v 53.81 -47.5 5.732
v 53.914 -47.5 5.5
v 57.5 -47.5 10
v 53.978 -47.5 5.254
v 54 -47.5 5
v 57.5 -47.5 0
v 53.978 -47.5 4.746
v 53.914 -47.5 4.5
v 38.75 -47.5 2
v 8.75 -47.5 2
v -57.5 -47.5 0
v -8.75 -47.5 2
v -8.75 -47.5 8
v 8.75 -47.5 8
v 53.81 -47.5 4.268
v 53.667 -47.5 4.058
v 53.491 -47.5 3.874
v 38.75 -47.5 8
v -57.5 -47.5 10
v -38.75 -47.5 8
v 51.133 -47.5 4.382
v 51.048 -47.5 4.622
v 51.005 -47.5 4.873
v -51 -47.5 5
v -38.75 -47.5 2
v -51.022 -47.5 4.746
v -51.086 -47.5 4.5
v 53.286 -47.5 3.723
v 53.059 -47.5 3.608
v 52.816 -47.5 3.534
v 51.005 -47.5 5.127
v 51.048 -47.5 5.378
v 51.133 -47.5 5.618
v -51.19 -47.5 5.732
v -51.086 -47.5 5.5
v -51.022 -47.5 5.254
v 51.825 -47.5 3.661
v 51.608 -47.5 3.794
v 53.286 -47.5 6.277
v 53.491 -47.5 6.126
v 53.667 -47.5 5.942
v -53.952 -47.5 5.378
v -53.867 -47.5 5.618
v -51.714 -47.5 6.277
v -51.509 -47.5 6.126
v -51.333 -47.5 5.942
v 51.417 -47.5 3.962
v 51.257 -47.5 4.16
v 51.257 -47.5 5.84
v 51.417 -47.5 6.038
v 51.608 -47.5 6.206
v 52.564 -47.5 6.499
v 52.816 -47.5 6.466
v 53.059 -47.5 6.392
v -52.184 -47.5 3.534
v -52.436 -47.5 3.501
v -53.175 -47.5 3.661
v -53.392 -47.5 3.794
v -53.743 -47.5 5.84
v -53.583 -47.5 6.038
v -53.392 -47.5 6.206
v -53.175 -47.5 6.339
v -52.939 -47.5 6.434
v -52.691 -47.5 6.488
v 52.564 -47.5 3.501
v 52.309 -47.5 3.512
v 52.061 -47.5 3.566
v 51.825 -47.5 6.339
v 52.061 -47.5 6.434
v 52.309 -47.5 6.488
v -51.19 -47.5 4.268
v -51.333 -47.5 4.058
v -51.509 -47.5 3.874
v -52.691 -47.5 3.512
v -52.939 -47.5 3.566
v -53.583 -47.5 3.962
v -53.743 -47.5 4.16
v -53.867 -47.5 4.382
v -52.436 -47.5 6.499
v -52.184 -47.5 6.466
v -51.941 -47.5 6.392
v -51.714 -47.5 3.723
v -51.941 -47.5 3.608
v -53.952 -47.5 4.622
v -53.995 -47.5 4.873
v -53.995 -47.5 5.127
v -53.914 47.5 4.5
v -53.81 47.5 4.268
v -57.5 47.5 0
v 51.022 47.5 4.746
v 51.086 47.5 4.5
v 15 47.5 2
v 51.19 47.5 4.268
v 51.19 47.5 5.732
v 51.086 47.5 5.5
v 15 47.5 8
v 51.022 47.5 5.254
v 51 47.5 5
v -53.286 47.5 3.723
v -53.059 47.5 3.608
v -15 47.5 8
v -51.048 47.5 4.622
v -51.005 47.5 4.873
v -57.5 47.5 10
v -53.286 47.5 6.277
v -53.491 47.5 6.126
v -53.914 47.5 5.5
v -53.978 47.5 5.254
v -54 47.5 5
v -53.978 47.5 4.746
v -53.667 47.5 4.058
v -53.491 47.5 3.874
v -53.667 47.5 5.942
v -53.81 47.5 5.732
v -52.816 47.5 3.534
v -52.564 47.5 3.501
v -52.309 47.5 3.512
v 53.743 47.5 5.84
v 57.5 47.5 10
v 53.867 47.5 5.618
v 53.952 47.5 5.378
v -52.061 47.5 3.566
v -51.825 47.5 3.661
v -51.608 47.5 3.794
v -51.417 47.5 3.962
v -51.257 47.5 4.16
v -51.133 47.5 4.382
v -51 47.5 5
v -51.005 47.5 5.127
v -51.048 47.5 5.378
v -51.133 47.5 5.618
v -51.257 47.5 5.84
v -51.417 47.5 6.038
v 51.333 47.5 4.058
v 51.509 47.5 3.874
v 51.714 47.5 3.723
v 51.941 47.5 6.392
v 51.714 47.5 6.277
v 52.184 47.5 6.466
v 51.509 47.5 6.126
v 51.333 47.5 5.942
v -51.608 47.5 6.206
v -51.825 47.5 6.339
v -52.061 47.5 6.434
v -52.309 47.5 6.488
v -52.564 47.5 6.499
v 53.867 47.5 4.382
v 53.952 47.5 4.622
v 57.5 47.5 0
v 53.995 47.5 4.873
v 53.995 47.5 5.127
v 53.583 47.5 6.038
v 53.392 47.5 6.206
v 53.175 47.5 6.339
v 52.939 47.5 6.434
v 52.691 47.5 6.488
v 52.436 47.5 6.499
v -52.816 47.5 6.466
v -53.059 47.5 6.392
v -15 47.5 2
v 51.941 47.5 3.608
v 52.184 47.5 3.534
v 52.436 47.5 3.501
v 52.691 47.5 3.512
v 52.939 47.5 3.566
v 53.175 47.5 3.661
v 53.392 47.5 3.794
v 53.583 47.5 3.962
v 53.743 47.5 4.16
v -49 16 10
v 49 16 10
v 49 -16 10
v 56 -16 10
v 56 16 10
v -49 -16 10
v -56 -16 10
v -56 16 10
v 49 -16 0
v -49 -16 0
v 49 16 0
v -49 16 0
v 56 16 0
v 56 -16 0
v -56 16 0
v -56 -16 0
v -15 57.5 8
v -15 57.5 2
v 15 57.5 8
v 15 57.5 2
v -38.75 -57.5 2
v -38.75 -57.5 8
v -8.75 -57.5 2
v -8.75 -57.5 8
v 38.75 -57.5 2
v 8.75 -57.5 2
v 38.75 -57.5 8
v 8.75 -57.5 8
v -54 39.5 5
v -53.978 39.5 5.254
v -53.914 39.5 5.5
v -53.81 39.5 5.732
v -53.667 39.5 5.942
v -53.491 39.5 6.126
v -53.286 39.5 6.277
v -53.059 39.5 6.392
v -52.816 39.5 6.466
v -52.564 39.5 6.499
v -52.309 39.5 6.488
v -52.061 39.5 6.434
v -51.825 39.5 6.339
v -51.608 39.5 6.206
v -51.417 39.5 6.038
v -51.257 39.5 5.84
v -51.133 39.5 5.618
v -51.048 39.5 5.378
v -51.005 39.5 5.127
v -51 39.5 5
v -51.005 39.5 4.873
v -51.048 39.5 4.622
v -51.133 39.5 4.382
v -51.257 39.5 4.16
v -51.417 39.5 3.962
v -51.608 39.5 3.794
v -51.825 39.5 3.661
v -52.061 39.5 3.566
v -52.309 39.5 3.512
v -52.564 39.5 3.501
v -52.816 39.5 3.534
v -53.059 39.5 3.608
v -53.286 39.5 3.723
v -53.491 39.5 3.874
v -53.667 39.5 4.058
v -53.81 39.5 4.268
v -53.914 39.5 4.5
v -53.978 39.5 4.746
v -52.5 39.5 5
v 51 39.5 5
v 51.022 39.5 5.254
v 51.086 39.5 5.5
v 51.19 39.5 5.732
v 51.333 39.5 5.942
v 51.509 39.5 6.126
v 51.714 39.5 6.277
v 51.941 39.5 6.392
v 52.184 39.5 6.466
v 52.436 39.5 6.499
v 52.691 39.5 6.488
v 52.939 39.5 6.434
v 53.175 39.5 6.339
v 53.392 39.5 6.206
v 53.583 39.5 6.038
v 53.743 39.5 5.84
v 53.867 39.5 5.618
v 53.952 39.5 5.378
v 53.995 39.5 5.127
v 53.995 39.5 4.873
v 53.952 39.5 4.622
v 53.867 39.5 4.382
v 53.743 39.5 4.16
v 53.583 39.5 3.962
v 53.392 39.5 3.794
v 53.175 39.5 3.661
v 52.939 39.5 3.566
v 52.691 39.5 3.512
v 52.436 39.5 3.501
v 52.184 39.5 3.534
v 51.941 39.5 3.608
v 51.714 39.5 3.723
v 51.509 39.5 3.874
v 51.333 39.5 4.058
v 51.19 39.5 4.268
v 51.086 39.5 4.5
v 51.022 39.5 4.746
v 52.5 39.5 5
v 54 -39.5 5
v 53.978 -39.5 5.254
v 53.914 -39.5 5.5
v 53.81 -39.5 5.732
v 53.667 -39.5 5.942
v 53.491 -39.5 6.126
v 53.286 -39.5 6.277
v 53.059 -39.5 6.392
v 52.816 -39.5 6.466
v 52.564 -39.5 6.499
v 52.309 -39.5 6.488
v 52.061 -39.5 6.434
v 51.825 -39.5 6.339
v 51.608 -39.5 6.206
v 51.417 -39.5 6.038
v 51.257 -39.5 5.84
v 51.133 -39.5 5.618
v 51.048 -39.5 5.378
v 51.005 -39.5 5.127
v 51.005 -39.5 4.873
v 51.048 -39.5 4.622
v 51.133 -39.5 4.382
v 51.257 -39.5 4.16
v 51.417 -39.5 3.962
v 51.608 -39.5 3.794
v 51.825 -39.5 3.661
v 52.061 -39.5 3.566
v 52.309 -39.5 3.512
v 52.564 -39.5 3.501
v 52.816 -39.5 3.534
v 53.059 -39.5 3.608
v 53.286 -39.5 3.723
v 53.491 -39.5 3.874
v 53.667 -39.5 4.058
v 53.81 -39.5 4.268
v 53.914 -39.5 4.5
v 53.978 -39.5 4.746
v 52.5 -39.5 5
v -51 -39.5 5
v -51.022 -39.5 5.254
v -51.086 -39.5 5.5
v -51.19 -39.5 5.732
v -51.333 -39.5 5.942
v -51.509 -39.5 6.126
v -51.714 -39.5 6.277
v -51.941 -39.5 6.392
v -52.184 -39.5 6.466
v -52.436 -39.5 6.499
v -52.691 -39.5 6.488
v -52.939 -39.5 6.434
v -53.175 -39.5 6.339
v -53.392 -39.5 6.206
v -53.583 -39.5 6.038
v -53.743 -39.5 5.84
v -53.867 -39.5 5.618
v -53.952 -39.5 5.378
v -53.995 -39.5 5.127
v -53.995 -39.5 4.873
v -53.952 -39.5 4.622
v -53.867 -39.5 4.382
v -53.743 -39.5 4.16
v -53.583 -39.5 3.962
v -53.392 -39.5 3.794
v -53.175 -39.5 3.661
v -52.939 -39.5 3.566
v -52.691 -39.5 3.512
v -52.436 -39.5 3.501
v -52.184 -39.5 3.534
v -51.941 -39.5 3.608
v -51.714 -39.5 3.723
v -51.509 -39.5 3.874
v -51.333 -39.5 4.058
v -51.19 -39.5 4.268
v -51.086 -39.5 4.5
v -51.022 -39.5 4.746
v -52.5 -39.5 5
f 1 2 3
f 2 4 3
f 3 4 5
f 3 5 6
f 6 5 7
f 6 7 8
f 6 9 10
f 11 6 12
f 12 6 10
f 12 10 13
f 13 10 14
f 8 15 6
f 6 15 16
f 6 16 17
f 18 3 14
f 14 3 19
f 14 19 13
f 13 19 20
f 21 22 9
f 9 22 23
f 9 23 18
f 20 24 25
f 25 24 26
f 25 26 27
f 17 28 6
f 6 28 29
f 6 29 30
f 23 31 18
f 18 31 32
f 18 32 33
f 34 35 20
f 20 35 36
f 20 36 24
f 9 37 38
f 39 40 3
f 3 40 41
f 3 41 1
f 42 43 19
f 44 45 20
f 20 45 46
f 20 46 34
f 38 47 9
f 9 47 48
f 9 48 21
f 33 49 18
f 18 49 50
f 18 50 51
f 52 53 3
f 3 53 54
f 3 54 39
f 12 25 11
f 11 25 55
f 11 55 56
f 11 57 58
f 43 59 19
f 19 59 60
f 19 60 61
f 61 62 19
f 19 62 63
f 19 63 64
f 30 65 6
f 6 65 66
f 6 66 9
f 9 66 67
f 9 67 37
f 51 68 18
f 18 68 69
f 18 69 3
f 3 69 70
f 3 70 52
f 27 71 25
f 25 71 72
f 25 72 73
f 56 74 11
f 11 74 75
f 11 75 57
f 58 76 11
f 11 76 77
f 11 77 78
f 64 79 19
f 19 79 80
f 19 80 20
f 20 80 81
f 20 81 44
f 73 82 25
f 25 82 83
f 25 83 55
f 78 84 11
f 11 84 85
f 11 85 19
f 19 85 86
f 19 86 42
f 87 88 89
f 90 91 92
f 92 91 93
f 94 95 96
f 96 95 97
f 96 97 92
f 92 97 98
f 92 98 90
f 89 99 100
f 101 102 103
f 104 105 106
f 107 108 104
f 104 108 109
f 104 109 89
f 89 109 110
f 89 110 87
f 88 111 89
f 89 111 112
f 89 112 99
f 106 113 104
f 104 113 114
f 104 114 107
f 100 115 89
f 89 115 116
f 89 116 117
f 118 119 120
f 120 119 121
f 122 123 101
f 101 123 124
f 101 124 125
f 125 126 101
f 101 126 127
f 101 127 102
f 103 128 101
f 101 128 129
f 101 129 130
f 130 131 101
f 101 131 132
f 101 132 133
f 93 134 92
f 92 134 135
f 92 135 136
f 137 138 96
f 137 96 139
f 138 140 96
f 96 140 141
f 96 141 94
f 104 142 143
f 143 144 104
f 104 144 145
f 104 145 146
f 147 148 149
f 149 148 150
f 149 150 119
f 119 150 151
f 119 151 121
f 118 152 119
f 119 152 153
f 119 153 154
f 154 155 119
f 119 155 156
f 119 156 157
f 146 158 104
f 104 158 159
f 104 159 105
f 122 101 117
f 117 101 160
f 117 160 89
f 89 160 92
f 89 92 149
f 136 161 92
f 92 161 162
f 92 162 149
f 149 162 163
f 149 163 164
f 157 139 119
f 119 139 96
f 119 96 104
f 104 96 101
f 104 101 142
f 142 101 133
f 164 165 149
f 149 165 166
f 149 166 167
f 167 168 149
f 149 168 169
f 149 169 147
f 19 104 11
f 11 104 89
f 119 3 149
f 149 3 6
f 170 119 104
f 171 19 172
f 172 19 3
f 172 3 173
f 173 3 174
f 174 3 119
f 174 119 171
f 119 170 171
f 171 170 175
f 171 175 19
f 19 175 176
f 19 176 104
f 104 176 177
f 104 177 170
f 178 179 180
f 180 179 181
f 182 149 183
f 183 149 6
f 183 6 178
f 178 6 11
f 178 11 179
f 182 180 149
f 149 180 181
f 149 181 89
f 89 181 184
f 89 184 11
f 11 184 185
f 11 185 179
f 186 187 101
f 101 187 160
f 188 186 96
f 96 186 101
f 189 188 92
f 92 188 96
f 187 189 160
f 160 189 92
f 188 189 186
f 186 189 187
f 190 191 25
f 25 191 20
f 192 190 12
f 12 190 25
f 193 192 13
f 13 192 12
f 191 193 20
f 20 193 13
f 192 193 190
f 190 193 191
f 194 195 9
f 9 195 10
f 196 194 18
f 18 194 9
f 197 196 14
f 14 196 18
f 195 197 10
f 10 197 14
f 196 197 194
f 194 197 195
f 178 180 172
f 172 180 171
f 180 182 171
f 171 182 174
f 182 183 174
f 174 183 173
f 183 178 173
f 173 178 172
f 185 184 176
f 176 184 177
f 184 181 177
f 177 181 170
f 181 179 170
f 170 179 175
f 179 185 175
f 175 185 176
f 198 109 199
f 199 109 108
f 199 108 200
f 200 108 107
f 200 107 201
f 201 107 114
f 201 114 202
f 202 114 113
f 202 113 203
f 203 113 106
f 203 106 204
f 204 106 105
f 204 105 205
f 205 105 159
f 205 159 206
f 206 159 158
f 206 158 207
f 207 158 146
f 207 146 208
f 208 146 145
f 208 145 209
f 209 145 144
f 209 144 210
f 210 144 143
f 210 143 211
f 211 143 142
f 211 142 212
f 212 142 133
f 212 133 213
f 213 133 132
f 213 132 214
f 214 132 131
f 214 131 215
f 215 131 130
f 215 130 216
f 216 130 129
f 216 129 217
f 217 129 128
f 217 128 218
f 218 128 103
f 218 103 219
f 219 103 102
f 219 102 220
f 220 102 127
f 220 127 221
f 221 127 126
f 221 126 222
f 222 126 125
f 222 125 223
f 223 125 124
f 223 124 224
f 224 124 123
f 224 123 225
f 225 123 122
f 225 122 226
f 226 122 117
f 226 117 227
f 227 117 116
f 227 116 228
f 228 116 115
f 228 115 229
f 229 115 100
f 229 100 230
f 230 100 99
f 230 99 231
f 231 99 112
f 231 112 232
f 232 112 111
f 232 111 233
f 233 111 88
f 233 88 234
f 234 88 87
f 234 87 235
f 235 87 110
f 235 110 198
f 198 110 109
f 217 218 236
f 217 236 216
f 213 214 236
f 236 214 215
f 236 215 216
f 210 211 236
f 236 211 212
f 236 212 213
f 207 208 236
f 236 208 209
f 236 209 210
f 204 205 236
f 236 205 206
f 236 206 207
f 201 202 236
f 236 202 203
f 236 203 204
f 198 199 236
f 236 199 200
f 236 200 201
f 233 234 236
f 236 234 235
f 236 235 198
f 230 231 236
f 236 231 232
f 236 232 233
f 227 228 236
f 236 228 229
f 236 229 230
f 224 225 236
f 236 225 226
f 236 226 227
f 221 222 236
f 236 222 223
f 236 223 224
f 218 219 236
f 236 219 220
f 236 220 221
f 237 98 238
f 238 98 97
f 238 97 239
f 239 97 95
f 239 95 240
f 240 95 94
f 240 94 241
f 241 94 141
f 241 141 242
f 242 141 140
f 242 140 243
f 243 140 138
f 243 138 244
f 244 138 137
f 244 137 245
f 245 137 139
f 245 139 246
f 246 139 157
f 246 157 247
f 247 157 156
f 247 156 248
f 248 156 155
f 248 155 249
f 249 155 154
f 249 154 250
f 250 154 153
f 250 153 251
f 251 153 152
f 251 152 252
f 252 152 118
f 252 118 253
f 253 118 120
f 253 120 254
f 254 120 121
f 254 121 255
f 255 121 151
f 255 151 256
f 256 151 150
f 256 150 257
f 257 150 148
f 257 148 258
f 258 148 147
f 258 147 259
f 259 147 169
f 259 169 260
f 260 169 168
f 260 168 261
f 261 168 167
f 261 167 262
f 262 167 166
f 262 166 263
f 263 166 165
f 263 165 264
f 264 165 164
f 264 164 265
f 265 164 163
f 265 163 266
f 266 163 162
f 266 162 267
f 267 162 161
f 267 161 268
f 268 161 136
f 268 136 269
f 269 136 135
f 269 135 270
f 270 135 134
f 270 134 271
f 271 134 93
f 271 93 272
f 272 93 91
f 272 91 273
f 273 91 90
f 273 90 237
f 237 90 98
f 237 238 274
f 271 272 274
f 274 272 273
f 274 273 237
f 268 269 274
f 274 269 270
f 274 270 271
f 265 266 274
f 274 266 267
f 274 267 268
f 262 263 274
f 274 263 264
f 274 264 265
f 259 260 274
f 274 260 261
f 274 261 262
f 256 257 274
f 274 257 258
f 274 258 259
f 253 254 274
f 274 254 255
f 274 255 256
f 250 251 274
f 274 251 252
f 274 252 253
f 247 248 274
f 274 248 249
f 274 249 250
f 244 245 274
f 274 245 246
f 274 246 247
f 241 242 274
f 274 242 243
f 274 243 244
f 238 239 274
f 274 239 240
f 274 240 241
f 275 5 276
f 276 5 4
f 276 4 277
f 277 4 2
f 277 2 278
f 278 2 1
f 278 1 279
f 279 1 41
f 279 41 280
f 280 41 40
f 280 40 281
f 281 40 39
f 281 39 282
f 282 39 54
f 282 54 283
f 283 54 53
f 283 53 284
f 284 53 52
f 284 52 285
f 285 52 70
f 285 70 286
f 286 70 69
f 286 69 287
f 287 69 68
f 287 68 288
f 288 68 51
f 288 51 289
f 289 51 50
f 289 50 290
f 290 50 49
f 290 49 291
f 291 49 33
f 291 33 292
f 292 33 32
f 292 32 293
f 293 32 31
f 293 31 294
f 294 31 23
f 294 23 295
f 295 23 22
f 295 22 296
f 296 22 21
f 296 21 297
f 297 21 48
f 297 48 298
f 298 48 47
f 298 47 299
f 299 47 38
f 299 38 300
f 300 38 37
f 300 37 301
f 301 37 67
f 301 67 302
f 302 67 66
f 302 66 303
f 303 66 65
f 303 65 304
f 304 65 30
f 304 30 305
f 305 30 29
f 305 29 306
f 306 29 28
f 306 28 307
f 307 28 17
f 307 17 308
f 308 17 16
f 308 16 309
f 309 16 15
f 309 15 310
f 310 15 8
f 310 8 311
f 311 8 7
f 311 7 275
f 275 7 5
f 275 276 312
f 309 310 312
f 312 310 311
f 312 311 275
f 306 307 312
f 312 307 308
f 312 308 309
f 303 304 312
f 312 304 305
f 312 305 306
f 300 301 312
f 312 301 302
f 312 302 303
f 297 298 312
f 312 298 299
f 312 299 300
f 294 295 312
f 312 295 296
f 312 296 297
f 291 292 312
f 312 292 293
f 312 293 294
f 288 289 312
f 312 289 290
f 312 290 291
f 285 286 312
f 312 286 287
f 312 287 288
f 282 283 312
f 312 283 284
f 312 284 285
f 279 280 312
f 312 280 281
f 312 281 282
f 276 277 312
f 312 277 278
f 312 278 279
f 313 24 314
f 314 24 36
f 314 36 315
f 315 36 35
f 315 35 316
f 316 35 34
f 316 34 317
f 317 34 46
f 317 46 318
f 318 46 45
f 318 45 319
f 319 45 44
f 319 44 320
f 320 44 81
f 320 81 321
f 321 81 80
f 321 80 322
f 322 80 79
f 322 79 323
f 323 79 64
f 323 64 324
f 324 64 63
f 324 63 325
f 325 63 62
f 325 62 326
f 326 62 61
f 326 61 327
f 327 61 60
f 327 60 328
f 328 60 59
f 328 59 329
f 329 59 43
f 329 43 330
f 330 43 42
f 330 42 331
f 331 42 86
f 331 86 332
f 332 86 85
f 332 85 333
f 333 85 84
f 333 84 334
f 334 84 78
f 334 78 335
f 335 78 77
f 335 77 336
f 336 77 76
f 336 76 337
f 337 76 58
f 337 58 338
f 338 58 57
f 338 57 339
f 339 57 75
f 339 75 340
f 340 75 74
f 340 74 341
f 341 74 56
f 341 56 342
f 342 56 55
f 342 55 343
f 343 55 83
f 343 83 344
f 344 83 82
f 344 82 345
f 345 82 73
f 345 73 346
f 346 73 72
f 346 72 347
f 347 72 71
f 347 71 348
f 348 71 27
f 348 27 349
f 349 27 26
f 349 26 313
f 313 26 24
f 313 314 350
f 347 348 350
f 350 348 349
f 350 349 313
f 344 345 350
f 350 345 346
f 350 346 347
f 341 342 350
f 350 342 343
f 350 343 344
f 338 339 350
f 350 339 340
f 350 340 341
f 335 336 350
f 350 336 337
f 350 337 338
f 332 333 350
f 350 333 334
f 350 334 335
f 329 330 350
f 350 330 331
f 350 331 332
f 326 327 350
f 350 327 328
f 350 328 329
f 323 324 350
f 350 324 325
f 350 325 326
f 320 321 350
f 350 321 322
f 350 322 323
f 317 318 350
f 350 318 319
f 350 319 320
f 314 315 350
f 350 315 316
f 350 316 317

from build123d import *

# Parameters (mm, degrees)
ESBO_O1_W                = 115
ESBO_O1_H                = 95
RESSALTO_EXTRUS_O1_DEPTH = 10
ESBO_O2_W                = 30
ESBO_O2_H                = 6
RESSALTO_EXTRUS_O2_DEPTH = 10
ESBO_O3_W                = 30
ESBO_O3_H                = 6
RESSALTO_EXTRUS_O3_DEPTH = 10
ESBO_O4_W                = 7
ESBO_O4_H                = 32
CORTE_EXTRUS_O1_DEPTH    = 11
ESBO_O5_R                = 1.5
CORTE_EXTRUS_O2_DEPTH    = 8
ESBO_O6_R                = 1.5
CORTE_EXTRUS_O3_DEPTH    = 8


with BuildPart() as part:
    # Esboço1 → Ressalto-extrusão1 (new body)
    with BuildSketch(Plane.XY):
        Rectangle(ESBO_O1_W, ESBO_O1_H)
    extrude(amount=RESSALTO_EXTRUS_O1_DEPTH)

    # Esboço2 → Ressalto-extrusão2 (add)
    with BuildSketch(Plane(origin=(0, 47.5, 0), x_dir=(1, 0, 0), z_dir=(0, 1, 0))):
        with Locations((0, -5)):
            Rectangle(ESBO_O2_W, ESBO_O2_H)
    extrude(amount=RESSALTO_EXTRUS_O2_DEPTH)

    # Esboço3 → Ressalto-extrusão3 (add)
    with BuildSketch(Plane.XZ.offset(47.5)):
        with Locations((23.75, 5)):
            Rectangle(ESBO_O3_W, ESBO_O3_H)
        with Locations((-23.75, 5)):
            Rectangle(ESBO_O3_W, ESBO_O3_H)
    extrude(amount=RESSALTO_EXTRUS_O3_DEPTH)

    # Esboço4 → Corte-extrusão1 (cut, through all)
    with BuildSketch(Plane.XY.offset(10)):
        with Locations((-52.5, 0)):
            Rectangle(ESBO_O4_W, ESBO_O4_H)
        with Locations((52.5, 0)):
            Rectangle(ESBO_O4_W, ESBO_O4_H)
    extrude(amount=-CORTE_EXTRUS_O1_DEPTH, mode=Mode.SUBTRACT)

    # Esboço5 → Corte-extrusão2 (cut)
    with BuildSketch(Plane(origin=(0, 47.5, 0), x_dir=(1, 0, 0), z_dir=(0, 1, 0))):
        with Locations((52.5, -5)):
            Circle(ESBO_O5_R)
        with Locations((-52.5, -5)):
            Circle(ESBO_O5_R)
    extrude(amount=-CORTE_EXTRUS_O2_DEPTH, mode=Mode.SUBTRACT)

    # Esboço6 → Corte-extrusão3 (cut)
    with BuildSketch(Plane.XZ.offset(47.5)):
        with Locations((-52.5, 5)):
            Circle(ESBO_O6_R)
        with Locations((52.5, 5)):
            Circle(ESBO_O6_R)
    extrude(amount=-CORTE_EXTRUS_O3_DEPTH, mode=Mode.SUBTRACT)


solid = part.part
